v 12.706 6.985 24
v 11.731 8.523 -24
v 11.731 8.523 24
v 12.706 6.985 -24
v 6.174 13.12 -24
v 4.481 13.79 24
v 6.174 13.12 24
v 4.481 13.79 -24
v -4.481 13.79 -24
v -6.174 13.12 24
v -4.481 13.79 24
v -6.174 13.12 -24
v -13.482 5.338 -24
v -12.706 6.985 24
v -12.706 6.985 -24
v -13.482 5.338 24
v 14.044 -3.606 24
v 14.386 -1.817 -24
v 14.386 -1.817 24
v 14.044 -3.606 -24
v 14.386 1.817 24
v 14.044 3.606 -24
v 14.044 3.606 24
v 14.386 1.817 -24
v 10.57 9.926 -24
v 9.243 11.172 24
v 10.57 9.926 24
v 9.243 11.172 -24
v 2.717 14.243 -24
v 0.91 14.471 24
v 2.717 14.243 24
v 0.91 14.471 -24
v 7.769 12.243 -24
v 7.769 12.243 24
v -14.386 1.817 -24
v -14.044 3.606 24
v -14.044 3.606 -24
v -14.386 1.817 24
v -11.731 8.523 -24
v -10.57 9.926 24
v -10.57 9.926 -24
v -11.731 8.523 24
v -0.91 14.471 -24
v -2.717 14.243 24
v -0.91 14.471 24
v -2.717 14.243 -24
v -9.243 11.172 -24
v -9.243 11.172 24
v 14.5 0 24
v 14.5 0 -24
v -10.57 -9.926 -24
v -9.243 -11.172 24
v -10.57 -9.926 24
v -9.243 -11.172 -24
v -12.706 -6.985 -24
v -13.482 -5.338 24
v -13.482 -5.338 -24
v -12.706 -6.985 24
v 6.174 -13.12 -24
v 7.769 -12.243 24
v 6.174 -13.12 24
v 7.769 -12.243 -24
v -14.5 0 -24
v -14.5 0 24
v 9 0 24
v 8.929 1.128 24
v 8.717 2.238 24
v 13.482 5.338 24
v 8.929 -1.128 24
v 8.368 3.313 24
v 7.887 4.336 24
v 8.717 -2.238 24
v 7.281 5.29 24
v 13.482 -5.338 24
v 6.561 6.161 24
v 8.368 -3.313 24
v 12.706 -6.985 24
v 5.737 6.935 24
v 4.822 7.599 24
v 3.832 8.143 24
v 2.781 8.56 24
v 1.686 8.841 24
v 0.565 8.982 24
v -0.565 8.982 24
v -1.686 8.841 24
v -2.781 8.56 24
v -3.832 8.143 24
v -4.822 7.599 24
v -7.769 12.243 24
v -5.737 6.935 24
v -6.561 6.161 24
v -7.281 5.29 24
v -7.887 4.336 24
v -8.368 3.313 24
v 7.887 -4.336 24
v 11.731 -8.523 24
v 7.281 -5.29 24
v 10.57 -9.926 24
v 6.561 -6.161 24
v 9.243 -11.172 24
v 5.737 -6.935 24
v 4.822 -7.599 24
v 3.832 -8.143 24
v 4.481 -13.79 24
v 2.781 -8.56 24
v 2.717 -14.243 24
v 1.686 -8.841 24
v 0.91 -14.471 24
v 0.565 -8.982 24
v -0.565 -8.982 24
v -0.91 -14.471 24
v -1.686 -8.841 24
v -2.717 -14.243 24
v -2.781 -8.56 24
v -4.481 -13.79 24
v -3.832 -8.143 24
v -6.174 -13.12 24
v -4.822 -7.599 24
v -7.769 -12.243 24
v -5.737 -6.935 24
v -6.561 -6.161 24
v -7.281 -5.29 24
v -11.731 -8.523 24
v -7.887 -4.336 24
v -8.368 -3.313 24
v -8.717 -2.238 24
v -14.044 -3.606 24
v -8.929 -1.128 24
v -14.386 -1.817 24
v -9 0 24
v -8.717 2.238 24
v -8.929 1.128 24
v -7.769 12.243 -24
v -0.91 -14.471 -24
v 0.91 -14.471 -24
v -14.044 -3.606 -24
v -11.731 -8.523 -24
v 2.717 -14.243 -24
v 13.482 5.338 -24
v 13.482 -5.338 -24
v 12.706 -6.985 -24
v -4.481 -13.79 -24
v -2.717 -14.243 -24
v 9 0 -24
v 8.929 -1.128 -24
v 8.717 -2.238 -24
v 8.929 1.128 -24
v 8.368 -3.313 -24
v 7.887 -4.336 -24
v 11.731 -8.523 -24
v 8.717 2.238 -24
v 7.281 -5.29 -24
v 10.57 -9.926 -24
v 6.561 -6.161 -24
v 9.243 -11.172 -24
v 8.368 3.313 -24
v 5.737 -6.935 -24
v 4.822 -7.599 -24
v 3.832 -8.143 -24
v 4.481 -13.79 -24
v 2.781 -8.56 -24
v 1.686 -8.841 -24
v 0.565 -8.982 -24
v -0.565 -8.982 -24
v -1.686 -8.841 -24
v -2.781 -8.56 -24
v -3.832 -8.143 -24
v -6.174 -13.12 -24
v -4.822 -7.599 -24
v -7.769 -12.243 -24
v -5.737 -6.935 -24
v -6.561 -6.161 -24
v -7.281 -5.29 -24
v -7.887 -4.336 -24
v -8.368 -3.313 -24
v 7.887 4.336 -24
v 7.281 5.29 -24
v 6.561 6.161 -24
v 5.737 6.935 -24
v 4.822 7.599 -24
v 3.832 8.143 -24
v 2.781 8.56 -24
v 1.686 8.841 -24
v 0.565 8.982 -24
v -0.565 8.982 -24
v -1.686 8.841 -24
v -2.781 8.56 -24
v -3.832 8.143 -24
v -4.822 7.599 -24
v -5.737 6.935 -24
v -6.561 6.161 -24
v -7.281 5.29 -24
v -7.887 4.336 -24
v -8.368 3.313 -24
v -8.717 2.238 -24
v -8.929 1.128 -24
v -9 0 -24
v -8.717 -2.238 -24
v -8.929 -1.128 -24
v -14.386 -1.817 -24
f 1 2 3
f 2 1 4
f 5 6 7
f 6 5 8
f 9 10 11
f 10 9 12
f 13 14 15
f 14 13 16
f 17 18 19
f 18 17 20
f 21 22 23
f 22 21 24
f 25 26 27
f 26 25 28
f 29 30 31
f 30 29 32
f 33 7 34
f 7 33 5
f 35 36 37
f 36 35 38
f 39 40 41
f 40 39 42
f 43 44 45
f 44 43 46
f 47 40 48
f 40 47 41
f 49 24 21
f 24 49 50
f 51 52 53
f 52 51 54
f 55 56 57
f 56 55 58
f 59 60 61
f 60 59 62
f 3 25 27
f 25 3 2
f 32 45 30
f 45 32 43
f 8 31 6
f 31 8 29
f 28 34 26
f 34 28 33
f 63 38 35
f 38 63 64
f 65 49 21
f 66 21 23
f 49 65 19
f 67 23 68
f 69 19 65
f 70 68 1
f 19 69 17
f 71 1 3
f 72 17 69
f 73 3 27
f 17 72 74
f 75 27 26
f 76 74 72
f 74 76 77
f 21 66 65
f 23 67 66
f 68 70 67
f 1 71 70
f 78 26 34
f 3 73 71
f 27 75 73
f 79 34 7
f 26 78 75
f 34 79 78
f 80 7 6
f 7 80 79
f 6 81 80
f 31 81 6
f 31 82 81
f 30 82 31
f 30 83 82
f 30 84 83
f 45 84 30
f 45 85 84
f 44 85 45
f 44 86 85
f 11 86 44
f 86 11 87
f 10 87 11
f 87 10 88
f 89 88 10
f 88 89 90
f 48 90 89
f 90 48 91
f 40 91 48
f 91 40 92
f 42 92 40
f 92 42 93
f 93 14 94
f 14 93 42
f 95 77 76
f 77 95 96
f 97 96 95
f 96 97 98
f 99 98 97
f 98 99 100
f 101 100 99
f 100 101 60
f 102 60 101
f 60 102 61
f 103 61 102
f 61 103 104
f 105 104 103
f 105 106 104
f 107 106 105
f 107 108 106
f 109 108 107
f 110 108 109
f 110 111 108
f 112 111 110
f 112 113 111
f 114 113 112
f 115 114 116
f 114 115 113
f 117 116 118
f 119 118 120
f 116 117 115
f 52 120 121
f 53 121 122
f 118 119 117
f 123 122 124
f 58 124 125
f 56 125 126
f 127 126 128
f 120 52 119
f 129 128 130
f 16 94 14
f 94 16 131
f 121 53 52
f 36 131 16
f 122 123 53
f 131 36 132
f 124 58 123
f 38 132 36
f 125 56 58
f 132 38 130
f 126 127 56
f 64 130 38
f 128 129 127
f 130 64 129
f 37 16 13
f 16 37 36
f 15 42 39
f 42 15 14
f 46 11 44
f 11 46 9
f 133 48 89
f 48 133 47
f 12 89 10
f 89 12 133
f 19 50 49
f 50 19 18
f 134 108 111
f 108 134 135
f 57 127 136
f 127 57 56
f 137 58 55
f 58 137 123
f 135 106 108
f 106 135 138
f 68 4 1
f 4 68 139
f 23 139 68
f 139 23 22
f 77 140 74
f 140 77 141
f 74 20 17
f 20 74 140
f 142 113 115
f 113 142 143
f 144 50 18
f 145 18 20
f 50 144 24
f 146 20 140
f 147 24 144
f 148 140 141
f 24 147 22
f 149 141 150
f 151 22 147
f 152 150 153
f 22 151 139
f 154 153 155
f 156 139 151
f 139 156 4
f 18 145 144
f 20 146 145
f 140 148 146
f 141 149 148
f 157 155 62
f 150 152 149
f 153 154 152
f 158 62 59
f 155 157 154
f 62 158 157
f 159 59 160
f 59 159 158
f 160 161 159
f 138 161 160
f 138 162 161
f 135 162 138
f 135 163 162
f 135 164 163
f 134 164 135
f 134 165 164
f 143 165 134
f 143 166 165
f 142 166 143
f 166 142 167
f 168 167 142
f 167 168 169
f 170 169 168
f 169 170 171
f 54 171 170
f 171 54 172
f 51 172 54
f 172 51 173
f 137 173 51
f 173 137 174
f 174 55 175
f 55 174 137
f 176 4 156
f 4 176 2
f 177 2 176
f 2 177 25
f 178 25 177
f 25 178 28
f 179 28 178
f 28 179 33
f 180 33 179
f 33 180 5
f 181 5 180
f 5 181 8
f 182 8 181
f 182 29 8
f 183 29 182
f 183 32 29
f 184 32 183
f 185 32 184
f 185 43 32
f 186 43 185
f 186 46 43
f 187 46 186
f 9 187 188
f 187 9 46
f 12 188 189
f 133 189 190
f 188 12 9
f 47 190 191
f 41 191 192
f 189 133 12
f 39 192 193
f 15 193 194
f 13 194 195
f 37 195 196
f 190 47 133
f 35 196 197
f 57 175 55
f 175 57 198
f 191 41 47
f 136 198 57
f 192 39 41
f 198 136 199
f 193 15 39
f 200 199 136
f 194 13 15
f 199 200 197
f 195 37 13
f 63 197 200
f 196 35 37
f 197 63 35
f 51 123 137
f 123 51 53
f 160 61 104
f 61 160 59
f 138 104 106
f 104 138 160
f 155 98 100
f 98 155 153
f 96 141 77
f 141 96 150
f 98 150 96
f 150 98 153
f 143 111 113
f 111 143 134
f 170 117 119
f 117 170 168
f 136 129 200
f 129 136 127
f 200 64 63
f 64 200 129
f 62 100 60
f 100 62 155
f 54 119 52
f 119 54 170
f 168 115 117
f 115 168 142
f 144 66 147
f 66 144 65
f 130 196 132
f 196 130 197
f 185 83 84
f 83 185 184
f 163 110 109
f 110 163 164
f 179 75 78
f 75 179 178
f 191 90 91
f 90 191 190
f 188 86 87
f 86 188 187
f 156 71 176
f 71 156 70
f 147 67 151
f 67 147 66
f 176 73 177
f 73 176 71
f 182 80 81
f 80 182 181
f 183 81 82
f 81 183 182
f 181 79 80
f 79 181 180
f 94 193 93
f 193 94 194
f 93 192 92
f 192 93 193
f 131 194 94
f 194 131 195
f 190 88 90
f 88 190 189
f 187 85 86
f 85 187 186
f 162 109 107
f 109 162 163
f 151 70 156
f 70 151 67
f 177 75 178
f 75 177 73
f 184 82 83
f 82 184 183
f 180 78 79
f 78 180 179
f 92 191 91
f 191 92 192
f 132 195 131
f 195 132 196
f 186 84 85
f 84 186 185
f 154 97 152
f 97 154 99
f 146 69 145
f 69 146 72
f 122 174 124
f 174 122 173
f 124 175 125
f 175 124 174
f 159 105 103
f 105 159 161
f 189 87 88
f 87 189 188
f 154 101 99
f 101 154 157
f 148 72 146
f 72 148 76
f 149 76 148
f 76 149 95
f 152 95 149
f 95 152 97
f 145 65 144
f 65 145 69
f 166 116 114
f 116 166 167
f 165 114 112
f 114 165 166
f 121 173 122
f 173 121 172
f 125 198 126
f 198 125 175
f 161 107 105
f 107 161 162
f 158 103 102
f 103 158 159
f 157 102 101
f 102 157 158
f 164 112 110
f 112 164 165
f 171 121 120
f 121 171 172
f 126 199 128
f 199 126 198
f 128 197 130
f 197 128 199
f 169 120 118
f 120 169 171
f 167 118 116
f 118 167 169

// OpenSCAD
$fn = 50;


difference() {
	union() {
		translate(v = [0, 0, -24.0000000000]) {
			cylinder(h = 48, r = 14.5000000000);
		}
	}
	union() {
		translate(v = [0, 0, -100.0000000000]) {
			cylinder(h = 200, r = 9);
		}
	}
}
